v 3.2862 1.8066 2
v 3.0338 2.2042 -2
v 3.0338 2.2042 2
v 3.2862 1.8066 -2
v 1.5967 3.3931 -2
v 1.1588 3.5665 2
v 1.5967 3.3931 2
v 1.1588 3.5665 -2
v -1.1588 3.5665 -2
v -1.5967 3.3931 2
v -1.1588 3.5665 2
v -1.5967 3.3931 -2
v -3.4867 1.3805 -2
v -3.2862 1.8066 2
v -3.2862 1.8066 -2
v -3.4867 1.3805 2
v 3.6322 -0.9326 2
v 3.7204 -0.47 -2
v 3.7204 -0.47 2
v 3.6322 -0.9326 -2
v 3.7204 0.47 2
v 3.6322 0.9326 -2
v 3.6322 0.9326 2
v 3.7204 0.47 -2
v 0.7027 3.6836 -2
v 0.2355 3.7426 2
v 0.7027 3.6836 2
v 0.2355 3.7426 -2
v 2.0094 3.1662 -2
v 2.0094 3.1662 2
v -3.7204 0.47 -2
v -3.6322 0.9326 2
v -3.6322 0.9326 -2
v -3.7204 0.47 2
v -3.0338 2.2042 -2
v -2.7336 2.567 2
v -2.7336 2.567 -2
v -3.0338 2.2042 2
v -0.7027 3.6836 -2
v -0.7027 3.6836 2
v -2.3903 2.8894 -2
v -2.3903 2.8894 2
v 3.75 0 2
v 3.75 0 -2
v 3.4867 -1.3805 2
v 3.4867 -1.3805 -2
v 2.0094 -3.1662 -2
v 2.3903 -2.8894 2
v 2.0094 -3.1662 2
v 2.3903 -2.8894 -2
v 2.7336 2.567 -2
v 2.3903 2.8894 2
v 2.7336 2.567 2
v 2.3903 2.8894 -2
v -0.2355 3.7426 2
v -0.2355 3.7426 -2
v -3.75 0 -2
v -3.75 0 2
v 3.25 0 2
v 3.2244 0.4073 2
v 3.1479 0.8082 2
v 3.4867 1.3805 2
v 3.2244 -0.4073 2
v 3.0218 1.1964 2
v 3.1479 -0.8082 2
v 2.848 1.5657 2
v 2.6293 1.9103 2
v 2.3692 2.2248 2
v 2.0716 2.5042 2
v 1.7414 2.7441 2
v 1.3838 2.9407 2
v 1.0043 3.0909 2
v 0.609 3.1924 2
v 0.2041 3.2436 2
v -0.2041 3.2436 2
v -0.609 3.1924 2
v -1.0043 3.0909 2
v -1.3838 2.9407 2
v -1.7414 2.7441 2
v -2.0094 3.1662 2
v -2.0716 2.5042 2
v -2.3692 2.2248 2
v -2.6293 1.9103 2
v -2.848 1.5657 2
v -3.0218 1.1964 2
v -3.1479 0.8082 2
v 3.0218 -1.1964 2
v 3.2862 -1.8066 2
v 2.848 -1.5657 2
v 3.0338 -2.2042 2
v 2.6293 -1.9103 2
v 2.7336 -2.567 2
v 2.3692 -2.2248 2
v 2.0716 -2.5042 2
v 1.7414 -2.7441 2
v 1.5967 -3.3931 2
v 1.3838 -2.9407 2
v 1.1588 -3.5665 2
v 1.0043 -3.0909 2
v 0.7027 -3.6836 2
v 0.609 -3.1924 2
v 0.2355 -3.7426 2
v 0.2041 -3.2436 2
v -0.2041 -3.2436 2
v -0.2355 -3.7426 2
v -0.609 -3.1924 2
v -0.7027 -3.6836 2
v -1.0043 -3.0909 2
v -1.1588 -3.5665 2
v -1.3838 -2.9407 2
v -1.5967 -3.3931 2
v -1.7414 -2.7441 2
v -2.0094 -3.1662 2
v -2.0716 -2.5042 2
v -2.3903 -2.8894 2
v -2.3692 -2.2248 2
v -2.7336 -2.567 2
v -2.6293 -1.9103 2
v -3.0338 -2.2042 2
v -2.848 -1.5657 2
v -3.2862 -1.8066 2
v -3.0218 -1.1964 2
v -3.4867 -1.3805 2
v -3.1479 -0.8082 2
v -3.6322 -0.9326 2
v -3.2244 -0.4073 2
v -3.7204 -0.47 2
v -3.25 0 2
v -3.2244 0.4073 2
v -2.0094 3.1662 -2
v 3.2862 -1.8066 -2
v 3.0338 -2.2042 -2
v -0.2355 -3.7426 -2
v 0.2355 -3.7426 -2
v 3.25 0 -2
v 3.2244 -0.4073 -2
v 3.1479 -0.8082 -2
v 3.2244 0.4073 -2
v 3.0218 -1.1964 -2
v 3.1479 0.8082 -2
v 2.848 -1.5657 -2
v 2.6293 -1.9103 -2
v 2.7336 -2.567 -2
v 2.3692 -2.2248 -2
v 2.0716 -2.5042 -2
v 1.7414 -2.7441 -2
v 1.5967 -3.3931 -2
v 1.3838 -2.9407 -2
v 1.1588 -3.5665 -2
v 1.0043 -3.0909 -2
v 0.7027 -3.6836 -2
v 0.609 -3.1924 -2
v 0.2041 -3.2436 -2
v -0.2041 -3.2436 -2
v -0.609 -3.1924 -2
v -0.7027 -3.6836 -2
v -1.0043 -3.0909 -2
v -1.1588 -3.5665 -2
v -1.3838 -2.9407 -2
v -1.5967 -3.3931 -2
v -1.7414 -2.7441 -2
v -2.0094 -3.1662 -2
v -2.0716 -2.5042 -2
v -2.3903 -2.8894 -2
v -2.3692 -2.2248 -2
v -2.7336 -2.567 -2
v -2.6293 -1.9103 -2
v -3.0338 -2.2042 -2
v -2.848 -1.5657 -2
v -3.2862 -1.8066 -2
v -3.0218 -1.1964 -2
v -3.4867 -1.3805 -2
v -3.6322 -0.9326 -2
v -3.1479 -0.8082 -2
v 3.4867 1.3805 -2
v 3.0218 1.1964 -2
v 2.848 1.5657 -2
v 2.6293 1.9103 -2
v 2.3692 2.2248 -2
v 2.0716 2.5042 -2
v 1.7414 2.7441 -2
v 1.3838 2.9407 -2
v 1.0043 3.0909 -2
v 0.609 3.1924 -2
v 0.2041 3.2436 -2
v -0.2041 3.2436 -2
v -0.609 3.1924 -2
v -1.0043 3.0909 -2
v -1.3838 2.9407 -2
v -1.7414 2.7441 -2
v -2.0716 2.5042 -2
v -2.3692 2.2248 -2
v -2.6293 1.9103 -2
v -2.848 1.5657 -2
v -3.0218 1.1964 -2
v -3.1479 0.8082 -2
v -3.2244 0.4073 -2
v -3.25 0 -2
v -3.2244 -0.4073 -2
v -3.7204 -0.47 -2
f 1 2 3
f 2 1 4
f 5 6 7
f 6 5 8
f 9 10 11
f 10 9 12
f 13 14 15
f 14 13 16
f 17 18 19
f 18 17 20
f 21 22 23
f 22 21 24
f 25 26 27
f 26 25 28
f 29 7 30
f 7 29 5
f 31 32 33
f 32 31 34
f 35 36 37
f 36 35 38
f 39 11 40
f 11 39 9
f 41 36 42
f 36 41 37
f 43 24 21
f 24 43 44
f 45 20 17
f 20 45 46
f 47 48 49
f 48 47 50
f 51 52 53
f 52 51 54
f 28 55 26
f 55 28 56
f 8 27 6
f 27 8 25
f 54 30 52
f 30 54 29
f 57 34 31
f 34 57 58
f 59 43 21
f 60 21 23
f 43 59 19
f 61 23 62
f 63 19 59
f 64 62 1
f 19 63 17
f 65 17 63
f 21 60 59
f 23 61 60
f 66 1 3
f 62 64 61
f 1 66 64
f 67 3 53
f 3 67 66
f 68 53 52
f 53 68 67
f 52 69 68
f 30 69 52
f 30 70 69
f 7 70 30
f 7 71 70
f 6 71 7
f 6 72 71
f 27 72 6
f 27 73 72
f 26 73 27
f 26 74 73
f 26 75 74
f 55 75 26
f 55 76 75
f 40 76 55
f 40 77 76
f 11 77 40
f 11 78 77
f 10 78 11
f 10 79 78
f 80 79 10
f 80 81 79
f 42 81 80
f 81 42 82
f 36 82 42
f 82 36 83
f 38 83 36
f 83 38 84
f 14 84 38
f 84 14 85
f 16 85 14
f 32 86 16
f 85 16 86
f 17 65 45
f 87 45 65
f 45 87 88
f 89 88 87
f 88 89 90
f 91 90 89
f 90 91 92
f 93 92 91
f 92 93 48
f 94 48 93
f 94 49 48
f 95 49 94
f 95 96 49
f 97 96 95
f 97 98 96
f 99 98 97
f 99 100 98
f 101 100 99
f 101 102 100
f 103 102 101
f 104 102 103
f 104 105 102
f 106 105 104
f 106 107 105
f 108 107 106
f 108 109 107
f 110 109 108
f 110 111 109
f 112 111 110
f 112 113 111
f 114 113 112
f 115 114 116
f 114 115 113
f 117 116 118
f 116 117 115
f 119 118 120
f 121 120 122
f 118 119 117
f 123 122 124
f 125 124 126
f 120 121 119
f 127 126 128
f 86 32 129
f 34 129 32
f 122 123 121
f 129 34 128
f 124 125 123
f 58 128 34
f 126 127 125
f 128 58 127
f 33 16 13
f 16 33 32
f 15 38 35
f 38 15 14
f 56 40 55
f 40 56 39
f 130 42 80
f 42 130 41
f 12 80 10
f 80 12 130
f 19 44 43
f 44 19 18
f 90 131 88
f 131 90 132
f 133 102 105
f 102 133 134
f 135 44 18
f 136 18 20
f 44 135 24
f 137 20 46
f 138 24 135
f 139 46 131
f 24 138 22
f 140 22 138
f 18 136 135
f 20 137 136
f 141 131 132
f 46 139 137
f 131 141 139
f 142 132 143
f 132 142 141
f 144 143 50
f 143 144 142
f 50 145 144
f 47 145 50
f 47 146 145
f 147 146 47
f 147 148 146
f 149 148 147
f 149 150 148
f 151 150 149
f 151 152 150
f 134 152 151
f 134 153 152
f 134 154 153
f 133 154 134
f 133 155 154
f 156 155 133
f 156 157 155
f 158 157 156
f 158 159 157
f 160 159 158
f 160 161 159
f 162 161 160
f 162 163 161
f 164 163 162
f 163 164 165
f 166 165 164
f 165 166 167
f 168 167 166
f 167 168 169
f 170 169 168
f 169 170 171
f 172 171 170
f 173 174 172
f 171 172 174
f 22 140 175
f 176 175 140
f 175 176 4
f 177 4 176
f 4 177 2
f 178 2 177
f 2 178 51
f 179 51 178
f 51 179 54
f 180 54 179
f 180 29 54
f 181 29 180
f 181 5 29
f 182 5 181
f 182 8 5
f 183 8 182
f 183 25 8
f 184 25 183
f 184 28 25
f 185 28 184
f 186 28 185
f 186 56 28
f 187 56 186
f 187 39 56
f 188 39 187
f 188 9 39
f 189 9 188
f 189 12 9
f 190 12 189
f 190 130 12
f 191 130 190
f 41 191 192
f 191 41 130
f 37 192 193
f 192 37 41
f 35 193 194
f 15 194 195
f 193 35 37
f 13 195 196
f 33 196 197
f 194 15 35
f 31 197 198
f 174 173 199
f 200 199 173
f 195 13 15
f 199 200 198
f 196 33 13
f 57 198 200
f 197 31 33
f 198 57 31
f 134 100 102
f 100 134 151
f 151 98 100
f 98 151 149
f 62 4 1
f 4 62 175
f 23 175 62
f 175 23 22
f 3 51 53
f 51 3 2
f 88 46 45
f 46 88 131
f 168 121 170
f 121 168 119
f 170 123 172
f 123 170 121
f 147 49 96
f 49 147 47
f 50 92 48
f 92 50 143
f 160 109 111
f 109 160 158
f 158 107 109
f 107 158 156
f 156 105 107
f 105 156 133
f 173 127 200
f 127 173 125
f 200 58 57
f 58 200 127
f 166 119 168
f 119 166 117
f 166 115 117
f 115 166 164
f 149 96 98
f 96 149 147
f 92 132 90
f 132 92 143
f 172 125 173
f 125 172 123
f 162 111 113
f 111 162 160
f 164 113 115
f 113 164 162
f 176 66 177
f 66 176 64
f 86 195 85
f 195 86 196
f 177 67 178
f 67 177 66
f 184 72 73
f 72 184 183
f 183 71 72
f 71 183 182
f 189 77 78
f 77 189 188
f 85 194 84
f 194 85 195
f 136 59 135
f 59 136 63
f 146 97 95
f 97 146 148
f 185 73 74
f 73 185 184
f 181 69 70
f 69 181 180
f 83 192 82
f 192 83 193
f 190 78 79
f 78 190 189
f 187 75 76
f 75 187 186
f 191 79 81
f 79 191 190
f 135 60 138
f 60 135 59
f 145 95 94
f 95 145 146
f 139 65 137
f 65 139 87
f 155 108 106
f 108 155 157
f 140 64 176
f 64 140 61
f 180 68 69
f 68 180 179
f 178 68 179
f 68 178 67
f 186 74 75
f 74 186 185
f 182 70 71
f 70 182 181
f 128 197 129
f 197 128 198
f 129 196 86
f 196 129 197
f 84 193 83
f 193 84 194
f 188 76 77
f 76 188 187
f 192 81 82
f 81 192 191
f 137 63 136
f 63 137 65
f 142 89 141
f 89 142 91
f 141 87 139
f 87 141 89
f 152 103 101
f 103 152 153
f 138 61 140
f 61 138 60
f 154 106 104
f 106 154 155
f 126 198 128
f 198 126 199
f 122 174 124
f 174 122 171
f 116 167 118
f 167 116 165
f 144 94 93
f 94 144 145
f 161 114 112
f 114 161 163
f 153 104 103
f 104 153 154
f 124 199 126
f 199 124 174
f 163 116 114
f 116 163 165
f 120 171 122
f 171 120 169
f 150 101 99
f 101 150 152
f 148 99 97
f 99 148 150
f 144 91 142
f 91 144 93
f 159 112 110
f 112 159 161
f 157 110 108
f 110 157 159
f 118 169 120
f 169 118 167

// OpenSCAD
$fn = 50;


difference() {
	union() {
		translate(v = [0, 0, -2.0000000000]) {
			cylinder(h = 4, r = 3.7500000000);
		}
	}
	union() {
		translate(v = [0, 0, -100.0000000000]) {
			cylinder(h = 200, r = 3.2500000000);
		}
	}
}
